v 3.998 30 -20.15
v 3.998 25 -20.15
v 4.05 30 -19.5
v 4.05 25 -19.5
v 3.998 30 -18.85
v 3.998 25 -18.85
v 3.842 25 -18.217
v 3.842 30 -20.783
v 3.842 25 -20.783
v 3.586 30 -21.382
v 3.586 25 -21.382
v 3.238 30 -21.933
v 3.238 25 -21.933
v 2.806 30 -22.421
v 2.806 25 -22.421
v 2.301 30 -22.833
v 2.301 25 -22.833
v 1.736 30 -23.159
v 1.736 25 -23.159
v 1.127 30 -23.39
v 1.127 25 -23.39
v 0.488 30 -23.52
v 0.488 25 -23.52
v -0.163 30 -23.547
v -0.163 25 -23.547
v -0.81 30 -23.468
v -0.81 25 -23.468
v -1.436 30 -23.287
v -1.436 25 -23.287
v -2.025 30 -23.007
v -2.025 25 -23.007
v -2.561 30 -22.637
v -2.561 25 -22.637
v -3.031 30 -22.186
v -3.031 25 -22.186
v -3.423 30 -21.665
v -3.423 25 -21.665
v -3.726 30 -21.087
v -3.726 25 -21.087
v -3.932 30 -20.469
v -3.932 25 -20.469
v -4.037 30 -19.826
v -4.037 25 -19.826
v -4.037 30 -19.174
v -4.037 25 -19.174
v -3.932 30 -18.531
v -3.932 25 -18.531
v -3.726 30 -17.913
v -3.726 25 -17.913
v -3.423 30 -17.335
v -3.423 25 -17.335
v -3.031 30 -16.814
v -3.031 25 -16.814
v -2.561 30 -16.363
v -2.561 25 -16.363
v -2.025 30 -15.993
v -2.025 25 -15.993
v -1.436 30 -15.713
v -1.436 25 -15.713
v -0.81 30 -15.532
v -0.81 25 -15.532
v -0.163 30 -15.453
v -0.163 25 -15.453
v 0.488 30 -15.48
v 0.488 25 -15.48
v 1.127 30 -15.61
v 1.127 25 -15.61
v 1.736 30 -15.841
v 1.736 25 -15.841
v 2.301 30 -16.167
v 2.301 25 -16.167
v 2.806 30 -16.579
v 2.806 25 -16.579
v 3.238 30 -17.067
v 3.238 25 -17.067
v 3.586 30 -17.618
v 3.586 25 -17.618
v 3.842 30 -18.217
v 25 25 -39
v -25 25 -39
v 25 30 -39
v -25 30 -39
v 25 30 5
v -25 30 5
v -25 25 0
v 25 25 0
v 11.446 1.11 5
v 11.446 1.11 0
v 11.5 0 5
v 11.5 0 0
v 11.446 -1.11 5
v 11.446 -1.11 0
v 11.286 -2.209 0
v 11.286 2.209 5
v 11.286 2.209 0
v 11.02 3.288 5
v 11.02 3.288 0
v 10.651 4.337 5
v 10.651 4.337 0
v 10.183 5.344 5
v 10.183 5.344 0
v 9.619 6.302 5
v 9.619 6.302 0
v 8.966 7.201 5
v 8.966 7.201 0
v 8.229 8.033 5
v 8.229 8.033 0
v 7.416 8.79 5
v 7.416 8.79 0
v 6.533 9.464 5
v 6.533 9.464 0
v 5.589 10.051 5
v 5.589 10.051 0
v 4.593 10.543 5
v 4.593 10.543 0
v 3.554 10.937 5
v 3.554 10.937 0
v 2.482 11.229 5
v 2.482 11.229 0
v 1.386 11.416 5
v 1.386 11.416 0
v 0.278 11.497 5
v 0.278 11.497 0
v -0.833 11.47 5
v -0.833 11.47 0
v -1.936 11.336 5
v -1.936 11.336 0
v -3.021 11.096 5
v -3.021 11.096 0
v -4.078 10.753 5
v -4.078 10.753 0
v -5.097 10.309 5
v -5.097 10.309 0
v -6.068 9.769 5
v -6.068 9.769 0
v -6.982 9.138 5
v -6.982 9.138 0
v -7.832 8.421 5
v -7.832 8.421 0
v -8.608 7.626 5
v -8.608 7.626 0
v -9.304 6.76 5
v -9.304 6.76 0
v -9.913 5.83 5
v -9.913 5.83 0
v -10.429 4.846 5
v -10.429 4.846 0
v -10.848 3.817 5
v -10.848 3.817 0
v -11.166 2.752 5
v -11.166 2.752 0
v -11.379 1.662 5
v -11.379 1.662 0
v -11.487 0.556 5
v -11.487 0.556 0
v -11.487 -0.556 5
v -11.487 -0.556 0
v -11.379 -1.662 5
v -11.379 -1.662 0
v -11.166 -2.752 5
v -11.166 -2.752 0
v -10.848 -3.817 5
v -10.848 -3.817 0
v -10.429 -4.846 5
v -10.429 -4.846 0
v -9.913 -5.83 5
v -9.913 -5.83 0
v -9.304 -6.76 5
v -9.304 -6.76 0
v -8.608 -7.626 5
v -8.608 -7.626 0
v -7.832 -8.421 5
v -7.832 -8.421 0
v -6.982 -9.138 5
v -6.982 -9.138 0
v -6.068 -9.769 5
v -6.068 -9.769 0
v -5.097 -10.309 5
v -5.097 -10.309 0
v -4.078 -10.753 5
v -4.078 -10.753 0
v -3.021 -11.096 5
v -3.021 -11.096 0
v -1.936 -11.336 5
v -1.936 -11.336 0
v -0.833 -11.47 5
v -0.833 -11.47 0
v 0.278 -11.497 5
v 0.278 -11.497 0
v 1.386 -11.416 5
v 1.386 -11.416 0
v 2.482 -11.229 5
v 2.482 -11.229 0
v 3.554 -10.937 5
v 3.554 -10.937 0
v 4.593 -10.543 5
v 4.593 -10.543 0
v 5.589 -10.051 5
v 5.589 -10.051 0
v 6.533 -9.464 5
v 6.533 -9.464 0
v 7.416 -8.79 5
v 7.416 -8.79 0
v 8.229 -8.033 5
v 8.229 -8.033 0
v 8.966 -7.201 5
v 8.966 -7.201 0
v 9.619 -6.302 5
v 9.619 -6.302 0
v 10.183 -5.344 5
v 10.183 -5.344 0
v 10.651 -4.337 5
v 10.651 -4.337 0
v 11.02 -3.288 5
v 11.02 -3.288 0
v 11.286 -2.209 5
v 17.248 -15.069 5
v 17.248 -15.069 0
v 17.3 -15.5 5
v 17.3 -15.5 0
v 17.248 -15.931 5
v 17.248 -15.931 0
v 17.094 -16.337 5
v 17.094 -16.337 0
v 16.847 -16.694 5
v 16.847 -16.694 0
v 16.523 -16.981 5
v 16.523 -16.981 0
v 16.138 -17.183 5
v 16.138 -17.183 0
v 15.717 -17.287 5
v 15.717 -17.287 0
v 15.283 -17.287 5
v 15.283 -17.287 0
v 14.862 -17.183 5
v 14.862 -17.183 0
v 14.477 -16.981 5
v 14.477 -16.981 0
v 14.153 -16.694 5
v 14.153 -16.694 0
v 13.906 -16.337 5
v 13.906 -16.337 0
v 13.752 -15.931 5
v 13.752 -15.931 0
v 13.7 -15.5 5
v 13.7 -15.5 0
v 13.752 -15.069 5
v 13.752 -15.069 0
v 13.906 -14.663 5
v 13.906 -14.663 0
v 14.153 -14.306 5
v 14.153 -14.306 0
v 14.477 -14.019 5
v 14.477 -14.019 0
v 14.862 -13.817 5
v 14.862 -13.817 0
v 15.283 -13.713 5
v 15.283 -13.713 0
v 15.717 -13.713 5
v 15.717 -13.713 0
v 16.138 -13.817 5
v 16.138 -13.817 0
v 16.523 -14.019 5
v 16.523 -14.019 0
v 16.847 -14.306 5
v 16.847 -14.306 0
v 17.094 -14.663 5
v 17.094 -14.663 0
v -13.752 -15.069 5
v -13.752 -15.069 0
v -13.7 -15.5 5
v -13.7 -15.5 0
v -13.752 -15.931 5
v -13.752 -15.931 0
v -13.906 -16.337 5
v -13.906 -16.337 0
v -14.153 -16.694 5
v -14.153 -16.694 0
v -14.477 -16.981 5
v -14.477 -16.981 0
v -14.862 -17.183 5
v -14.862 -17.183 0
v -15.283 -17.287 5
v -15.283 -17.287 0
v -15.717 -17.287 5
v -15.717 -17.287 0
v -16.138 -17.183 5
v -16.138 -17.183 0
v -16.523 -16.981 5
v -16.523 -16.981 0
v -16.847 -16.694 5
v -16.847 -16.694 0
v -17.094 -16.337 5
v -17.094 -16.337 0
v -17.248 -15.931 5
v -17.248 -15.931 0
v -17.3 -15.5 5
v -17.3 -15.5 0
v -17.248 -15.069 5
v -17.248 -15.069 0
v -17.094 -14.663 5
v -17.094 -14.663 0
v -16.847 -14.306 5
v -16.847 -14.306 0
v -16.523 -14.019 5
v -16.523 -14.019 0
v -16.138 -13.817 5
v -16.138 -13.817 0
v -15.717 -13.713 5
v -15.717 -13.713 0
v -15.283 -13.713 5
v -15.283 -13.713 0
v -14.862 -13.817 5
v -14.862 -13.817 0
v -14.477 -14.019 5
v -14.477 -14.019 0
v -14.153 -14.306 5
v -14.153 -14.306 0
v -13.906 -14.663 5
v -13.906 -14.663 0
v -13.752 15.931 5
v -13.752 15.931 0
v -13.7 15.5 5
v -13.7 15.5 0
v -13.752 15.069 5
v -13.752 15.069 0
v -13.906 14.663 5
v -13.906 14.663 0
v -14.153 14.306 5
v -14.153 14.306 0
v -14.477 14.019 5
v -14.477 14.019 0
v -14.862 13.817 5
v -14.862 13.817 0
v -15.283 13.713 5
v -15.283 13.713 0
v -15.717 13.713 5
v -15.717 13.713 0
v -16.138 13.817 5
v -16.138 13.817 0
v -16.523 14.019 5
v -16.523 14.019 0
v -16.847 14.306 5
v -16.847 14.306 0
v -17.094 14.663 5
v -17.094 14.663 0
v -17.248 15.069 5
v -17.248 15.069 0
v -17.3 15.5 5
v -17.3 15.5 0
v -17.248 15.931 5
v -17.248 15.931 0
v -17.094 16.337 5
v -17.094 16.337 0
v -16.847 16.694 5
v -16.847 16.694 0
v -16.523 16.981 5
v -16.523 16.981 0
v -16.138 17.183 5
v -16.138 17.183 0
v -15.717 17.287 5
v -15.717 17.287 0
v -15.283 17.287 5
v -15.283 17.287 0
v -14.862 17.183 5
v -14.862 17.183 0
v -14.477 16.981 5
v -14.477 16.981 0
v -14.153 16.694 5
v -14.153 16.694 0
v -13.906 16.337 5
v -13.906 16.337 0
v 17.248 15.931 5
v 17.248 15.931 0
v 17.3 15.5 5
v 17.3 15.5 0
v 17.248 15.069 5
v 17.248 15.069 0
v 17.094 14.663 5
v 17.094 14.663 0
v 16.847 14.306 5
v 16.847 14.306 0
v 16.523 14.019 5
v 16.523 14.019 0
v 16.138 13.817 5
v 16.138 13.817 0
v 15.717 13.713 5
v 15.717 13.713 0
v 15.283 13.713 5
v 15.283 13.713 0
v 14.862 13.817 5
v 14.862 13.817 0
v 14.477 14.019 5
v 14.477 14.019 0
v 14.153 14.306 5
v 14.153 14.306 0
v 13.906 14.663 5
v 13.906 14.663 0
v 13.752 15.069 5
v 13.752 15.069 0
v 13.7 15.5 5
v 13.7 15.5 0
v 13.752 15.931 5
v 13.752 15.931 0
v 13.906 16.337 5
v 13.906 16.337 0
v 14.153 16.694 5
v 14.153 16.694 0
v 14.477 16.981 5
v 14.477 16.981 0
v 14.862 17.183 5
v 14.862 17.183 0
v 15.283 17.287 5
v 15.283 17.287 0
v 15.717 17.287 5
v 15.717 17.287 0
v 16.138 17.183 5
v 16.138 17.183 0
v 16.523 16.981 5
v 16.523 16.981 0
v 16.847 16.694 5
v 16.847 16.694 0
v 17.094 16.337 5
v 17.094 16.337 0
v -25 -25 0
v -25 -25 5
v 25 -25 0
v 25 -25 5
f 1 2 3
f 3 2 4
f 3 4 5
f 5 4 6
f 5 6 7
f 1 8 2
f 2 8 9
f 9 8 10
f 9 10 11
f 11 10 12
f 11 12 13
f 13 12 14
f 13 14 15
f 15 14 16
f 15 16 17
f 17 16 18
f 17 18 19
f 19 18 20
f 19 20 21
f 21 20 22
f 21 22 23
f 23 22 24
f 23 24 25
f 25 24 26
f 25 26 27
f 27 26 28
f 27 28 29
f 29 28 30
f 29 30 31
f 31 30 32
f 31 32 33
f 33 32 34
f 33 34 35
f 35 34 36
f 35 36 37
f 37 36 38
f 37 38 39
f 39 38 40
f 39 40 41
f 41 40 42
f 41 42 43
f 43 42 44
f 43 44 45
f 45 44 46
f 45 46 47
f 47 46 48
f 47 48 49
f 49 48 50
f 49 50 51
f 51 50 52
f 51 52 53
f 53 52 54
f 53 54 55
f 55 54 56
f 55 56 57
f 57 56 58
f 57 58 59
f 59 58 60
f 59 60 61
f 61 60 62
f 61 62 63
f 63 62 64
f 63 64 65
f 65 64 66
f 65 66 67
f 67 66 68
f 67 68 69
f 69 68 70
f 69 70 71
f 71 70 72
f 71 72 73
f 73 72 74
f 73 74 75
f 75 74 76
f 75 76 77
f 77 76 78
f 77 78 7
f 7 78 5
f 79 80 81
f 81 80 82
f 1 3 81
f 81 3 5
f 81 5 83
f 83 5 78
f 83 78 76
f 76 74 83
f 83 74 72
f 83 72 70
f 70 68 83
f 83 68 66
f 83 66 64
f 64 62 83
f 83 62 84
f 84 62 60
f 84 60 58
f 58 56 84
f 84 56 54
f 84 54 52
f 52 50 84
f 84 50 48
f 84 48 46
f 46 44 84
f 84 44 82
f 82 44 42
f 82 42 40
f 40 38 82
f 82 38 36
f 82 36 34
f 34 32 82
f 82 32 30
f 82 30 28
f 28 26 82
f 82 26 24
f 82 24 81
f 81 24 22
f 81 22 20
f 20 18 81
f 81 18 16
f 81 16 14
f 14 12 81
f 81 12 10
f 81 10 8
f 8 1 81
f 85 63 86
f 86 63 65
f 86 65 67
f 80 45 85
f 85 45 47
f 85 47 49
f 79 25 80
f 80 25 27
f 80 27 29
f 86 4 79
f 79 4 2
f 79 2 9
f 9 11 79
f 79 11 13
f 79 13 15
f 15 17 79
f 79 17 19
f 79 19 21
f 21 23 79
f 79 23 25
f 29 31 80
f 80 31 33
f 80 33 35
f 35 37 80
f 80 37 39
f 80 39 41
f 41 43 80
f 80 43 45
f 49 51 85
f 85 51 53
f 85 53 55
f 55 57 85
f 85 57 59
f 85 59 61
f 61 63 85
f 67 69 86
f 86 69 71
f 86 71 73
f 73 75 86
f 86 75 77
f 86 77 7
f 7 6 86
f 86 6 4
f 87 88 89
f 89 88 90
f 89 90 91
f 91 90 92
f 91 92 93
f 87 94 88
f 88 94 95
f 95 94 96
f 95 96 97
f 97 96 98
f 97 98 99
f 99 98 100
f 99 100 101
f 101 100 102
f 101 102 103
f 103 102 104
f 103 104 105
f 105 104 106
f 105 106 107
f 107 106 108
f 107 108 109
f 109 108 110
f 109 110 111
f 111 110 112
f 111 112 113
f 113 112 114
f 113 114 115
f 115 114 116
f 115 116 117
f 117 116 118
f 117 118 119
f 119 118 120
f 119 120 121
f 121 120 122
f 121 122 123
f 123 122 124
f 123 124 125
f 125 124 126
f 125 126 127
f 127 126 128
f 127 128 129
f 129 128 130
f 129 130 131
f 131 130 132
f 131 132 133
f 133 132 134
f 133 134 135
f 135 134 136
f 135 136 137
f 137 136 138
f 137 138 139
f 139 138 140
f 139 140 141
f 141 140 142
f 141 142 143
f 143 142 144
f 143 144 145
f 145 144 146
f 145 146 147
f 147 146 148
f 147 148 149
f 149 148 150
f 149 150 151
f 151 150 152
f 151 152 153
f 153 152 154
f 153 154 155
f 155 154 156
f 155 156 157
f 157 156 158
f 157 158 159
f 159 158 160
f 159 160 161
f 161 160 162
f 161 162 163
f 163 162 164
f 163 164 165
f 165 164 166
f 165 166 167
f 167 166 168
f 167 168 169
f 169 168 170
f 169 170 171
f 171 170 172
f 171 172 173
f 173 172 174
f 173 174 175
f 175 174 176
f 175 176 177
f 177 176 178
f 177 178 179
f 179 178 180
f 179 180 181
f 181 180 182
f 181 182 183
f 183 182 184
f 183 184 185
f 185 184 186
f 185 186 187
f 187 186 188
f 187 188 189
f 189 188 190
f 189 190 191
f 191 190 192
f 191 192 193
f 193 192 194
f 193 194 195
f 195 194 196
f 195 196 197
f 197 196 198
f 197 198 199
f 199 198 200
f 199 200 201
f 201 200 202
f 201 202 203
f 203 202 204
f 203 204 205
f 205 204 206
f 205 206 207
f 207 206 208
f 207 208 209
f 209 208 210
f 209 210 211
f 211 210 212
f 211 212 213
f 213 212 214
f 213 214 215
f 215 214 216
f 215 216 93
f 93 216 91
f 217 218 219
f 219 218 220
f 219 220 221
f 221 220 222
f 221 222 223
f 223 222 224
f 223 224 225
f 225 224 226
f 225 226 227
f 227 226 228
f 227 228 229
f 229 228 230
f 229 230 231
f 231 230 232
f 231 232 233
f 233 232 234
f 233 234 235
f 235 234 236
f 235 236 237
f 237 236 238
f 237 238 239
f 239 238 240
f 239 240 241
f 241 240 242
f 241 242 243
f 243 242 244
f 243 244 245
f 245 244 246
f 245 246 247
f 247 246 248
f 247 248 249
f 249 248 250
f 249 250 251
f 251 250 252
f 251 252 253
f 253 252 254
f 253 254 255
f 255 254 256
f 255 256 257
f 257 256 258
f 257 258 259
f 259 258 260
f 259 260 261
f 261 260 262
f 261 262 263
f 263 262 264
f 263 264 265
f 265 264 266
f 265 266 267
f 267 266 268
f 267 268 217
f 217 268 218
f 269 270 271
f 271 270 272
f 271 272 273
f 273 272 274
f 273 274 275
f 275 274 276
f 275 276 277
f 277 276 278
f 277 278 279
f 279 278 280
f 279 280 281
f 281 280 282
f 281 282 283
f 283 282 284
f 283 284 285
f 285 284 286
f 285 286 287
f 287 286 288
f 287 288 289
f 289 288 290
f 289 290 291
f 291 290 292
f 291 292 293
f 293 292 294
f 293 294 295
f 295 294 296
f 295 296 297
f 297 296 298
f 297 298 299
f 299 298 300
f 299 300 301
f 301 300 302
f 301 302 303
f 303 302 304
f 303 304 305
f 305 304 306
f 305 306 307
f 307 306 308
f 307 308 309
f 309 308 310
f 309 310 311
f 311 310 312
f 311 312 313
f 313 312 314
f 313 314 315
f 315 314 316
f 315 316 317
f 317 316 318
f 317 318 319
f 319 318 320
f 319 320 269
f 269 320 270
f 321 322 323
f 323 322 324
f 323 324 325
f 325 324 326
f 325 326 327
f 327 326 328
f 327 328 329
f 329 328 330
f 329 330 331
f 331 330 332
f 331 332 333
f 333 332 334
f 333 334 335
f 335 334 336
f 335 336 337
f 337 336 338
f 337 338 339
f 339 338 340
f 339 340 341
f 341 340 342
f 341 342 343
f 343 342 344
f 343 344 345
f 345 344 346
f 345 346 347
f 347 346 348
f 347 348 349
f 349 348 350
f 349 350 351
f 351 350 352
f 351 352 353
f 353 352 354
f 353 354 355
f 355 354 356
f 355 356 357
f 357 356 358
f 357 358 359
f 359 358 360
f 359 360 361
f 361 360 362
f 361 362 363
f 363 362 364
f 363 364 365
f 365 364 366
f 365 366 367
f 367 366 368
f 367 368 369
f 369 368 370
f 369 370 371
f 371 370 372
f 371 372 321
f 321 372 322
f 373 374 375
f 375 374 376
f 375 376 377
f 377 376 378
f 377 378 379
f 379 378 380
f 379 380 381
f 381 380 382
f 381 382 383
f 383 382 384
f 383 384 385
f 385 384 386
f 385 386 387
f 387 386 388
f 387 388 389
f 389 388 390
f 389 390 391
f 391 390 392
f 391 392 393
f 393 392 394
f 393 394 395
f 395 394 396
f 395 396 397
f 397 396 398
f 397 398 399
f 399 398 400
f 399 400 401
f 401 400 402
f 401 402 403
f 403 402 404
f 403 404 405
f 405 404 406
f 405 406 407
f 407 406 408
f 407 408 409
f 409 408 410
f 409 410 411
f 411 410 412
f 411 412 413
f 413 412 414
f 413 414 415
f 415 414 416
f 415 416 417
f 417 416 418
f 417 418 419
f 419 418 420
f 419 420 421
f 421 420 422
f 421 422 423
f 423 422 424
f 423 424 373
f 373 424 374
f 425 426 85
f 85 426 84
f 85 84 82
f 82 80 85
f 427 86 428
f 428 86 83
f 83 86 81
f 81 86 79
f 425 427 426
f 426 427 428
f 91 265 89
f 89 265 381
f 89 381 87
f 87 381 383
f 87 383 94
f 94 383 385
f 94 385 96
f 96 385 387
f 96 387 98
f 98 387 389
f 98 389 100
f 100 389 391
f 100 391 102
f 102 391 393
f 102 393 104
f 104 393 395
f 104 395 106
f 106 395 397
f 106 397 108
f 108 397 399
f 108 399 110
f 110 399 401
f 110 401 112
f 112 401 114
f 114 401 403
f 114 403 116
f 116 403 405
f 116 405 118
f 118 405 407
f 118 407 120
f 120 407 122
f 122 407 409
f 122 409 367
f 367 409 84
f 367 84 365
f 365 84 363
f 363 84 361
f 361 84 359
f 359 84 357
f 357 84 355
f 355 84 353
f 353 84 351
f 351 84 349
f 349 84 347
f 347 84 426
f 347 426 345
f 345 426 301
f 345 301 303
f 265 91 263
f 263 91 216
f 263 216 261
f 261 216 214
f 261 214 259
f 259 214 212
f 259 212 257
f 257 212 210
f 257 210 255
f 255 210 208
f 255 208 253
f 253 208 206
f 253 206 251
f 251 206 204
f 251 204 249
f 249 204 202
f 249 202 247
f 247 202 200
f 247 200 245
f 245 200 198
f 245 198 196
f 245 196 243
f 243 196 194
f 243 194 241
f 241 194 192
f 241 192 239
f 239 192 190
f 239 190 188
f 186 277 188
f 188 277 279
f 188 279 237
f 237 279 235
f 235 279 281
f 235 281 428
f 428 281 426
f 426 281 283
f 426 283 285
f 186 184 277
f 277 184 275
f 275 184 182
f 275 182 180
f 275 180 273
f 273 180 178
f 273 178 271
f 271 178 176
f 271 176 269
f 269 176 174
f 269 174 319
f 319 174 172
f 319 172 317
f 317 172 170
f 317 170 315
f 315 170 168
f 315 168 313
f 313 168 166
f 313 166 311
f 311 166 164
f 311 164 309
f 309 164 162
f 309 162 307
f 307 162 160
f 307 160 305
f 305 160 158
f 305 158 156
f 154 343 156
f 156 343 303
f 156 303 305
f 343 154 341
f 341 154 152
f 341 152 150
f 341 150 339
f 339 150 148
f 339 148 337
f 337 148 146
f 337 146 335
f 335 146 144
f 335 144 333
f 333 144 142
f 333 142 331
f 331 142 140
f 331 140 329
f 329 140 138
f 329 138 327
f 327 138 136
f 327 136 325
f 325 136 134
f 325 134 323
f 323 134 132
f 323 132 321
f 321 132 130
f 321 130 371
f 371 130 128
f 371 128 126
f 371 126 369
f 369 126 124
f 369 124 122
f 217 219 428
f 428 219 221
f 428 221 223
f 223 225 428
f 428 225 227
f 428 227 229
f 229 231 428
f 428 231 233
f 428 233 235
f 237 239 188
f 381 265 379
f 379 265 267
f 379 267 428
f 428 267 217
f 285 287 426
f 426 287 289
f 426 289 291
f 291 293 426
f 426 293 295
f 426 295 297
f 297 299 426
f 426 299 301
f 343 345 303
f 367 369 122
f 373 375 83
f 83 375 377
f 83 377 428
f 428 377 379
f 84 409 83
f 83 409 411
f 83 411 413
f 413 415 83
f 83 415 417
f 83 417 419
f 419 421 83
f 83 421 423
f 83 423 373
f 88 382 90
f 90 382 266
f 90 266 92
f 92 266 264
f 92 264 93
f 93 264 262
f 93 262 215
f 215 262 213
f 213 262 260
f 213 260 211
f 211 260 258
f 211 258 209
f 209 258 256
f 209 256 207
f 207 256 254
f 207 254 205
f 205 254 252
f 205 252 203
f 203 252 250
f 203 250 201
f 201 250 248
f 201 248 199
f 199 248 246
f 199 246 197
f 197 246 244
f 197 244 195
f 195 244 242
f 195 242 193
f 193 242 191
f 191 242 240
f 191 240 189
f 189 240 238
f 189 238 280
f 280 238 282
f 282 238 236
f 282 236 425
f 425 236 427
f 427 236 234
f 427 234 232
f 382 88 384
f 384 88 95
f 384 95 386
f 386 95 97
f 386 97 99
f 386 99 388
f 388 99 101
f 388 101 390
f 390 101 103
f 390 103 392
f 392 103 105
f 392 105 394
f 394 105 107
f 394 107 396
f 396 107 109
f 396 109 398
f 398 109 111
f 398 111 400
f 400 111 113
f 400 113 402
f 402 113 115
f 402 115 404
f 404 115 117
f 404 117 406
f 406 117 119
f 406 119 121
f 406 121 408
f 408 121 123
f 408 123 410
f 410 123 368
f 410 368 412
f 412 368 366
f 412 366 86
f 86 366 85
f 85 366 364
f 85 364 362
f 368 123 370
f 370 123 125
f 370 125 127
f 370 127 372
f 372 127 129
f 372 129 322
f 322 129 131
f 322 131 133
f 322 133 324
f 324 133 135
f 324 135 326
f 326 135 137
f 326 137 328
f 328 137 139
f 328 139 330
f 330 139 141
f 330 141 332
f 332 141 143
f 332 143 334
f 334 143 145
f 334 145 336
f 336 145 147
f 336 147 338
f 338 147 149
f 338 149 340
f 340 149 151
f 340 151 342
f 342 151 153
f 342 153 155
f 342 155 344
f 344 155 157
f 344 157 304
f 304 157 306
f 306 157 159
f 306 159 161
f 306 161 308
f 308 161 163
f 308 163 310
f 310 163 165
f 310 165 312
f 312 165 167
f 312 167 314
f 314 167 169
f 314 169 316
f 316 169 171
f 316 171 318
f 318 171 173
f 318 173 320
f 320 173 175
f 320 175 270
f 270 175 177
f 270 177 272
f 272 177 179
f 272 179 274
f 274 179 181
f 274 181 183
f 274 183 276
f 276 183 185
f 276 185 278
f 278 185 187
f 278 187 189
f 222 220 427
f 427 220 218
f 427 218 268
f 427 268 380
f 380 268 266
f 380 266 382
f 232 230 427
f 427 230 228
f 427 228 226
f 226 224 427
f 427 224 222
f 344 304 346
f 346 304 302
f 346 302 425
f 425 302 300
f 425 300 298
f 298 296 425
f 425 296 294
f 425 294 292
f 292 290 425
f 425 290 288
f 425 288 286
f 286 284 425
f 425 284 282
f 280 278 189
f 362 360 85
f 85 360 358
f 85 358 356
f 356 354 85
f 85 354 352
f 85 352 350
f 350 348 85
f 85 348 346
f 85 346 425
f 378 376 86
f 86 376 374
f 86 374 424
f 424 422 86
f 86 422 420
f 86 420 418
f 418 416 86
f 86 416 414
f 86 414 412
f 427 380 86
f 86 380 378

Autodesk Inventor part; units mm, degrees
ref_plane "YZ Plane" through (0, 0, 0) normal (1, 0, 0) x (0, 1, 0)
ref_plane "XZ Plane" through (0, 0, 0) normal (0, 1, 0) x (-1, 0, 0)
ref_plane "XY Plane" through (0, 0, 0) normal (0, 0, 1) x (1, 0, 0)
sketch "Эскиз1" plane through (0, 0, 0) normal (0, 0, 1) x (1, 0, 0)
  line L0 (-25, -25) -> (25, -25)
  line L1 (25, -25) -> (25, 25)
  line L2 (25, 25) -> (-25, 25)
  line L3 (-25, 25) -> (-25, -25)
  circle A0 centre (0, 0) radius 11.5
  circle A1 centre (15.5, 15.5) radius 1.8
  circle A2 centre (-15.5, 15.5) radius 1.8
  circle A3 centre (-15.5, -15.5) radius 1.8
  circle A4 centre (15.5, -15.5) radius 1.8
  dimension "d0" = 50
  dimension "d1" = 50
  dimension "d2" = 23
  dimension "d3" = 3.6
  dimension "d6" = 360
  dimension "d14" = 25
  dimension "d15" = 25
  dimension "d16" = 9.5
  dimension "d17" = 9.5
extrude "Выдавливание1" add sketch "Эскиз1" along normal blind 5
sketch "Эскиз2" plane through (-25, 25, 0) normal (0, 1, 0) x (1, 0, 0)
  line L0 (0, 0) -> (50, 0)
  line L1 (50, 0) -> (50, 39)
  line L2 (50, 39) -> (0, 39)
  line L3 (0, 39) -> (0, 0)
  line L4 (0, -5) -> (50, -5) projected
  line L5 (50, 0) -> (50, -5) projected
  line L6 (0, -5) -> (50, -5)
  line L7 (50, -5) -> (50, 0)
  line L8 (50, 0) -> (0, 0)
  line L9 (0, 0) -> (0, -5)
  circle A0 centre (25, 19.5) radius 4.05
  point P0 (25, 0)
  dimension "d10" = 50
  dimension "d11" = 39
  dimension "d19" = 8.1
extrude "Выдавливание3" add sketch "Эскиз2" along normal blind 5
properties part number "motor_holder"
